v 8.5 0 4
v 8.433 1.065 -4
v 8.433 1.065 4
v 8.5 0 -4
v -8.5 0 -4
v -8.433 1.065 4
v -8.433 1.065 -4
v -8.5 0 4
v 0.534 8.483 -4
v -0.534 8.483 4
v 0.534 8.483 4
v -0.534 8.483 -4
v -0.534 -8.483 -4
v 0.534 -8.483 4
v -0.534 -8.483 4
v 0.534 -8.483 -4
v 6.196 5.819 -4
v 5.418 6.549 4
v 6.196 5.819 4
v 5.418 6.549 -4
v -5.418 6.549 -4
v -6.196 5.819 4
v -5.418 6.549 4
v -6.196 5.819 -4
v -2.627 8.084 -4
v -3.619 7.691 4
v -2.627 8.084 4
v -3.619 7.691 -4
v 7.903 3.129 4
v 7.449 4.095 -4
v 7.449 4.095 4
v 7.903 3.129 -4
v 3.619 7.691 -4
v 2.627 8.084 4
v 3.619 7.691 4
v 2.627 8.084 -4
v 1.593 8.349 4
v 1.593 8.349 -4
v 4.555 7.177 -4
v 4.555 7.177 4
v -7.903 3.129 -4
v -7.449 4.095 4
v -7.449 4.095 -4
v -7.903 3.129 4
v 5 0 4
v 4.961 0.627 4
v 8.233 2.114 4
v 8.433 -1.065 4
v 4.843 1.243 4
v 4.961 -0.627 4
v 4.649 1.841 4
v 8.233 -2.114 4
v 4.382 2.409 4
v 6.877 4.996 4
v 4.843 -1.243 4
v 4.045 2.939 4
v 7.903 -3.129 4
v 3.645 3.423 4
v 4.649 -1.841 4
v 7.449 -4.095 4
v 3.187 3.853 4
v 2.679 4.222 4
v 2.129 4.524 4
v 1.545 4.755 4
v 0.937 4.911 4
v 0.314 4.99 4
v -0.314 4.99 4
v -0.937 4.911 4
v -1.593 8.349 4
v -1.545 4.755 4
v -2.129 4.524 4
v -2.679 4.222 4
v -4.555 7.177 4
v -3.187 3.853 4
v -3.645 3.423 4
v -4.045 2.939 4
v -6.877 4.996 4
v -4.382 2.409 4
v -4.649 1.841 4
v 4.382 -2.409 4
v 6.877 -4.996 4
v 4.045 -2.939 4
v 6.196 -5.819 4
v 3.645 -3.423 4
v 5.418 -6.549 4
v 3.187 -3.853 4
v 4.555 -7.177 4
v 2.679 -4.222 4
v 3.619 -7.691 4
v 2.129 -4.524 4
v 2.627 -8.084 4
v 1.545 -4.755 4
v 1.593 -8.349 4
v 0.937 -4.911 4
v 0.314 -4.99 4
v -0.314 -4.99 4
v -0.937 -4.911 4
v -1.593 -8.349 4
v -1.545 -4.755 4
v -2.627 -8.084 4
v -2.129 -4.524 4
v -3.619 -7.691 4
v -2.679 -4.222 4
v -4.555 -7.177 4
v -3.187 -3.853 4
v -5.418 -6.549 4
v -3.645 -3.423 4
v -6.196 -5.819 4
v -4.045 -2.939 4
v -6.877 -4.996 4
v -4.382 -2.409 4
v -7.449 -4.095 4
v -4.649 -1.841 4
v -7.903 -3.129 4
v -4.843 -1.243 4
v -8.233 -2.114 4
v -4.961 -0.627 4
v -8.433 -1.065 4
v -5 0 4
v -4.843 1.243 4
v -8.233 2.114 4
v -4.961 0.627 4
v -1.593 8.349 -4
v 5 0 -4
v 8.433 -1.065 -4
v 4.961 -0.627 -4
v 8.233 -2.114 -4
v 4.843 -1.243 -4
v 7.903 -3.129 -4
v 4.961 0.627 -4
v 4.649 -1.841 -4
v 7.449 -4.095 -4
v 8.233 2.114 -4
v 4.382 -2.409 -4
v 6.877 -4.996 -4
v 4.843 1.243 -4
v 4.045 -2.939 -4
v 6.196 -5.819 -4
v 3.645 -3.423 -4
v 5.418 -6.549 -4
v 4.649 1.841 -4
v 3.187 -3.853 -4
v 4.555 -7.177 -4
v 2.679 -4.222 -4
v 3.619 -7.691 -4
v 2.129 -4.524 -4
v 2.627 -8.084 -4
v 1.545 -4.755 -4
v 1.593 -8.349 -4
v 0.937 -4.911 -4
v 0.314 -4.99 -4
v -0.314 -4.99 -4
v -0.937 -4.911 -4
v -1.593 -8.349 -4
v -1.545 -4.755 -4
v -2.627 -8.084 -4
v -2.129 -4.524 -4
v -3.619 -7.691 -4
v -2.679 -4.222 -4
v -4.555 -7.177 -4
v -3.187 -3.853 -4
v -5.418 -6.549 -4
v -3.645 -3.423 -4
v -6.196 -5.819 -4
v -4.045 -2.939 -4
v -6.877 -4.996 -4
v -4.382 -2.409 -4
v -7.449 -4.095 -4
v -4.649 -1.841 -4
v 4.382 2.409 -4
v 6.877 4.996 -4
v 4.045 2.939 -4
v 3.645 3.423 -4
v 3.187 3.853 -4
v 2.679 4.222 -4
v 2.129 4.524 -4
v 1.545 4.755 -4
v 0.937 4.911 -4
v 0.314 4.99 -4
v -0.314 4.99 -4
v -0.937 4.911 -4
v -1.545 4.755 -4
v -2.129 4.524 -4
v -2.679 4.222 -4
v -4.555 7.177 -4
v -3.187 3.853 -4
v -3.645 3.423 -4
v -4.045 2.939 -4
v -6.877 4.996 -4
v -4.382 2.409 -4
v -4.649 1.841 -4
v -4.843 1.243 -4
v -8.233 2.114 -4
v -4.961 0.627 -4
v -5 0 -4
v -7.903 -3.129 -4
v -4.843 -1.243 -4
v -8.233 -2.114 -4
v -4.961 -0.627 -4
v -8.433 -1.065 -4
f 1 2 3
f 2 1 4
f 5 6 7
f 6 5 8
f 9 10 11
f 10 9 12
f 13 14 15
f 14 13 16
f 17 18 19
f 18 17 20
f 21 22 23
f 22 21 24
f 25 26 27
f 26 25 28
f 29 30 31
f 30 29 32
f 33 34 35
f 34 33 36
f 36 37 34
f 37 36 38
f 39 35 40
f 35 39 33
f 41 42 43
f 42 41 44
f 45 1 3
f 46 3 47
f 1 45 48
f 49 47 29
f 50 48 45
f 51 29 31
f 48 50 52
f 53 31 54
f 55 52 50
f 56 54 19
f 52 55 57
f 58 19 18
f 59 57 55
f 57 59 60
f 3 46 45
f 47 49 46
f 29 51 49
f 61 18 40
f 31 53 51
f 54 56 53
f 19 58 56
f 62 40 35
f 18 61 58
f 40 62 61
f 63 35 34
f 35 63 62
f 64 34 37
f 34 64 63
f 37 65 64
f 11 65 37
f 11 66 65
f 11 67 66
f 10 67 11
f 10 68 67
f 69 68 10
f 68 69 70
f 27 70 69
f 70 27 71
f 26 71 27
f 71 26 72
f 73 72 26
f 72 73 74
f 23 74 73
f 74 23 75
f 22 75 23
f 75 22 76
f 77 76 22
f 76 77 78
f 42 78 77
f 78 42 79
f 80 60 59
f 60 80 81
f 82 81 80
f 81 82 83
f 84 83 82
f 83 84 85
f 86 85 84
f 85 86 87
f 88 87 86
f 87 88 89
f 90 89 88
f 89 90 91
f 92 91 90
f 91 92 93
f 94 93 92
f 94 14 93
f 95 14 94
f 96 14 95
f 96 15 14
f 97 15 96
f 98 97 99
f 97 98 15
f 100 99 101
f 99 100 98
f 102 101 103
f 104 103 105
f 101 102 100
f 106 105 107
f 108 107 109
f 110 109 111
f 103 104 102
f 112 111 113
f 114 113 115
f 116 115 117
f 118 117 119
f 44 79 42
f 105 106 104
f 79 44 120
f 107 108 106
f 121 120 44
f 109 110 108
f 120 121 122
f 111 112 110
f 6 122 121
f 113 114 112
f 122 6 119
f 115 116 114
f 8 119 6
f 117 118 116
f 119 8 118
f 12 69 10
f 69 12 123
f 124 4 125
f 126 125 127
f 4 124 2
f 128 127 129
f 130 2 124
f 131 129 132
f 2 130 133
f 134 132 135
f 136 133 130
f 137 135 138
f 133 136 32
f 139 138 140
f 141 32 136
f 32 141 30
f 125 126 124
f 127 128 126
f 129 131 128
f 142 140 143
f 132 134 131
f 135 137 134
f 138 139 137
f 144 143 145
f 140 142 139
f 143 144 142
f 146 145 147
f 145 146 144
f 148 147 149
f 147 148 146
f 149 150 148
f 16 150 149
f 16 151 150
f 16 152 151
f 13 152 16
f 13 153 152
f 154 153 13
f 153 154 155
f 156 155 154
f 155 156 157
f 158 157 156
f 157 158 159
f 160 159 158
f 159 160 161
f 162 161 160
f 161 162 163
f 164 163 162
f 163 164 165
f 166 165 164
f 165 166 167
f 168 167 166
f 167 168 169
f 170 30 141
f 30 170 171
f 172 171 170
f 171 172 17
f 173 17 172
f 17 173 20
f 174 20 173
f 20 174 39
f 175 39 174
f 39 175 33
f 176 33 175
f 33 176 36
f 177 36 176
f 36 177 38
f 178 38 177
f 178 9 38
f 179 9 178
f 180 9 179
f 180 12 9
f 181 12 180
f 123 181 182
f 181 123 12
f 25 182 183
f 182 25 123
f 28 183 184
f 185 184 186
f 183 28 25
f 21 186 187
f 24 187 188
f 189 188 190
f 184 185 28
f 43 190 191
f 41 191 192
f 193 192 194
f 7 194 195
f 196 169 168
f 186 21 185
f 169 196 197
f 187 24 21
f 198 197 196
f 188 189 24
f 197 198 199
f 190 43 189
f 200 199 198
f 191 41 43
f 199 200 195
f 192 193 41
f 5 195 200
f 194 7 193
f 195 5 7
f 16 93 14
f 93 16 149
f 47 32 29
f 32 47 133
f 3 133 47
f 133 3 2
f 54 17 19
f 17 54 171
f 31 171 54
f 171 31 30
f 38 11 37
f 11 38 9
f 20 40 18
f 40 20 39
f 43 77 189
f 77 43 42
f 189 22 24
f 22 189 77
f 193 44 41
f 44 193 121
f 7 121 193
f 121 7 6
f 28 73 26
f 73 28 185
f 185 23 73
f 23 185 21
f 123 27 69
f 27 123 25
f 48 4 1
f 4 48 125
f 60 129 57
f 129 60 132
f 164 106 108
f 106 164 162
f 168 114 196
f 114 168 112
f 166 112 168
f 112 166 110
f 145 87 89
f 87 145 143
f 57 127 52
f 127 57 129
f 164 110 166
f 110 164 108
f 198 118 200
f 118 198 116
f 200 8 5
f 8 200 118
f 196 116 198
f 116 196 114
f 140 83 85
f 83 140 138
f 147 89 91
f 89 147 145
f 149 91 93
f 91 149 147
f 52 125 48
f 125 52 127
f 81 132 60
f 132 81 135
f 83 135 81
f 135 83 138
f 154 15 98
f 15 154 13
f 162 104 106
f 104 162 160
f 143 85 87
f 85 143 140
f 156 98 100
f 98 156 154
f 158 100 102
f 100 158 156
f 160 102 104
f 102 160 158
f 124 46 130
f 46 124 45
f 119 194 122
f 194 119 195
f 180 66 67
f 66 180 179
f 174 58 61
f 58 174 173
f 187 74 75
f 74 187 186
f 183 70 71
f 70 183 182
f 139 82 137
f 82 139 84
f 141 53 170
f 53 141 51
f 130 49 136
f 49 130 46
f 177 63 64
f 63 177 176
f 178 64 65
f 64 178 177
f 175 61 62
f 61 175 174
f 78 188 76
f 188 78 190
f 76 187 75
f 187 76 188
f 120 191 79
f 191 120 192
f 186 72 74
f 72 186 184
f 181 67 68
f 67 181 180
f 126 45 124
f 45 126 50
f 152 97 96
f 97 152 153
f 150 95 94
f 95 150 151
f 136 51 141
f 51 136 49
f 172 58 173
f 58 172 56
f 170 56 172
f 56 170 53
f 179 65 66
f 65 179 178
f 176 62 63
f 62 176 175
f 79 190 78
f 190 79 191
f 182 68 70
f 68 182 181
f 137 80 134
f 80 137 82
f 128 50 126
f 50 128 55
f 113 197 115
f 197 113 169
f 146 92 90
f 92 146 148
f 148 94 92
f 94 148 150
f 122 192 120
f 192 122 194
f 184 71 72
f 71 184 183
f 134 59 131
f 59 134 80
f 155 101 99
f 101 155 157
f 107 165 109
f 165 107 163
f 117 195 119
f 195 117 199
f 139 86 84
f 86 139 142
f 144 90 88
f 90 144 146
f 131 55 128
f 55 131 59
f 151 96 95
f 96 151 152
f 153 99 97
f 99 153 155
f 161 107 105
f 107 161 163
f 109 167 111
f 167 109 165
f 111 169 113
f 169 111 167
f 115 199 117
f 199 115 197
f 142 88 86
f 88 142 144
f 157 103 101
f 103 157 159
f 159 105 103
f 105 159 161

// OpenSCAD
$fn = 50;


difference() {
	union() {
		translate(v = [0, 0, -4.0000000000]) {
			cylinder(h = 8, r = 8.5000000000);
		}
	}
	union() {
		translate(v = [0, 0, -100.0000000000]) {
			cylinder(h = 200, r = 5.0000000000);
		}
	}
}
